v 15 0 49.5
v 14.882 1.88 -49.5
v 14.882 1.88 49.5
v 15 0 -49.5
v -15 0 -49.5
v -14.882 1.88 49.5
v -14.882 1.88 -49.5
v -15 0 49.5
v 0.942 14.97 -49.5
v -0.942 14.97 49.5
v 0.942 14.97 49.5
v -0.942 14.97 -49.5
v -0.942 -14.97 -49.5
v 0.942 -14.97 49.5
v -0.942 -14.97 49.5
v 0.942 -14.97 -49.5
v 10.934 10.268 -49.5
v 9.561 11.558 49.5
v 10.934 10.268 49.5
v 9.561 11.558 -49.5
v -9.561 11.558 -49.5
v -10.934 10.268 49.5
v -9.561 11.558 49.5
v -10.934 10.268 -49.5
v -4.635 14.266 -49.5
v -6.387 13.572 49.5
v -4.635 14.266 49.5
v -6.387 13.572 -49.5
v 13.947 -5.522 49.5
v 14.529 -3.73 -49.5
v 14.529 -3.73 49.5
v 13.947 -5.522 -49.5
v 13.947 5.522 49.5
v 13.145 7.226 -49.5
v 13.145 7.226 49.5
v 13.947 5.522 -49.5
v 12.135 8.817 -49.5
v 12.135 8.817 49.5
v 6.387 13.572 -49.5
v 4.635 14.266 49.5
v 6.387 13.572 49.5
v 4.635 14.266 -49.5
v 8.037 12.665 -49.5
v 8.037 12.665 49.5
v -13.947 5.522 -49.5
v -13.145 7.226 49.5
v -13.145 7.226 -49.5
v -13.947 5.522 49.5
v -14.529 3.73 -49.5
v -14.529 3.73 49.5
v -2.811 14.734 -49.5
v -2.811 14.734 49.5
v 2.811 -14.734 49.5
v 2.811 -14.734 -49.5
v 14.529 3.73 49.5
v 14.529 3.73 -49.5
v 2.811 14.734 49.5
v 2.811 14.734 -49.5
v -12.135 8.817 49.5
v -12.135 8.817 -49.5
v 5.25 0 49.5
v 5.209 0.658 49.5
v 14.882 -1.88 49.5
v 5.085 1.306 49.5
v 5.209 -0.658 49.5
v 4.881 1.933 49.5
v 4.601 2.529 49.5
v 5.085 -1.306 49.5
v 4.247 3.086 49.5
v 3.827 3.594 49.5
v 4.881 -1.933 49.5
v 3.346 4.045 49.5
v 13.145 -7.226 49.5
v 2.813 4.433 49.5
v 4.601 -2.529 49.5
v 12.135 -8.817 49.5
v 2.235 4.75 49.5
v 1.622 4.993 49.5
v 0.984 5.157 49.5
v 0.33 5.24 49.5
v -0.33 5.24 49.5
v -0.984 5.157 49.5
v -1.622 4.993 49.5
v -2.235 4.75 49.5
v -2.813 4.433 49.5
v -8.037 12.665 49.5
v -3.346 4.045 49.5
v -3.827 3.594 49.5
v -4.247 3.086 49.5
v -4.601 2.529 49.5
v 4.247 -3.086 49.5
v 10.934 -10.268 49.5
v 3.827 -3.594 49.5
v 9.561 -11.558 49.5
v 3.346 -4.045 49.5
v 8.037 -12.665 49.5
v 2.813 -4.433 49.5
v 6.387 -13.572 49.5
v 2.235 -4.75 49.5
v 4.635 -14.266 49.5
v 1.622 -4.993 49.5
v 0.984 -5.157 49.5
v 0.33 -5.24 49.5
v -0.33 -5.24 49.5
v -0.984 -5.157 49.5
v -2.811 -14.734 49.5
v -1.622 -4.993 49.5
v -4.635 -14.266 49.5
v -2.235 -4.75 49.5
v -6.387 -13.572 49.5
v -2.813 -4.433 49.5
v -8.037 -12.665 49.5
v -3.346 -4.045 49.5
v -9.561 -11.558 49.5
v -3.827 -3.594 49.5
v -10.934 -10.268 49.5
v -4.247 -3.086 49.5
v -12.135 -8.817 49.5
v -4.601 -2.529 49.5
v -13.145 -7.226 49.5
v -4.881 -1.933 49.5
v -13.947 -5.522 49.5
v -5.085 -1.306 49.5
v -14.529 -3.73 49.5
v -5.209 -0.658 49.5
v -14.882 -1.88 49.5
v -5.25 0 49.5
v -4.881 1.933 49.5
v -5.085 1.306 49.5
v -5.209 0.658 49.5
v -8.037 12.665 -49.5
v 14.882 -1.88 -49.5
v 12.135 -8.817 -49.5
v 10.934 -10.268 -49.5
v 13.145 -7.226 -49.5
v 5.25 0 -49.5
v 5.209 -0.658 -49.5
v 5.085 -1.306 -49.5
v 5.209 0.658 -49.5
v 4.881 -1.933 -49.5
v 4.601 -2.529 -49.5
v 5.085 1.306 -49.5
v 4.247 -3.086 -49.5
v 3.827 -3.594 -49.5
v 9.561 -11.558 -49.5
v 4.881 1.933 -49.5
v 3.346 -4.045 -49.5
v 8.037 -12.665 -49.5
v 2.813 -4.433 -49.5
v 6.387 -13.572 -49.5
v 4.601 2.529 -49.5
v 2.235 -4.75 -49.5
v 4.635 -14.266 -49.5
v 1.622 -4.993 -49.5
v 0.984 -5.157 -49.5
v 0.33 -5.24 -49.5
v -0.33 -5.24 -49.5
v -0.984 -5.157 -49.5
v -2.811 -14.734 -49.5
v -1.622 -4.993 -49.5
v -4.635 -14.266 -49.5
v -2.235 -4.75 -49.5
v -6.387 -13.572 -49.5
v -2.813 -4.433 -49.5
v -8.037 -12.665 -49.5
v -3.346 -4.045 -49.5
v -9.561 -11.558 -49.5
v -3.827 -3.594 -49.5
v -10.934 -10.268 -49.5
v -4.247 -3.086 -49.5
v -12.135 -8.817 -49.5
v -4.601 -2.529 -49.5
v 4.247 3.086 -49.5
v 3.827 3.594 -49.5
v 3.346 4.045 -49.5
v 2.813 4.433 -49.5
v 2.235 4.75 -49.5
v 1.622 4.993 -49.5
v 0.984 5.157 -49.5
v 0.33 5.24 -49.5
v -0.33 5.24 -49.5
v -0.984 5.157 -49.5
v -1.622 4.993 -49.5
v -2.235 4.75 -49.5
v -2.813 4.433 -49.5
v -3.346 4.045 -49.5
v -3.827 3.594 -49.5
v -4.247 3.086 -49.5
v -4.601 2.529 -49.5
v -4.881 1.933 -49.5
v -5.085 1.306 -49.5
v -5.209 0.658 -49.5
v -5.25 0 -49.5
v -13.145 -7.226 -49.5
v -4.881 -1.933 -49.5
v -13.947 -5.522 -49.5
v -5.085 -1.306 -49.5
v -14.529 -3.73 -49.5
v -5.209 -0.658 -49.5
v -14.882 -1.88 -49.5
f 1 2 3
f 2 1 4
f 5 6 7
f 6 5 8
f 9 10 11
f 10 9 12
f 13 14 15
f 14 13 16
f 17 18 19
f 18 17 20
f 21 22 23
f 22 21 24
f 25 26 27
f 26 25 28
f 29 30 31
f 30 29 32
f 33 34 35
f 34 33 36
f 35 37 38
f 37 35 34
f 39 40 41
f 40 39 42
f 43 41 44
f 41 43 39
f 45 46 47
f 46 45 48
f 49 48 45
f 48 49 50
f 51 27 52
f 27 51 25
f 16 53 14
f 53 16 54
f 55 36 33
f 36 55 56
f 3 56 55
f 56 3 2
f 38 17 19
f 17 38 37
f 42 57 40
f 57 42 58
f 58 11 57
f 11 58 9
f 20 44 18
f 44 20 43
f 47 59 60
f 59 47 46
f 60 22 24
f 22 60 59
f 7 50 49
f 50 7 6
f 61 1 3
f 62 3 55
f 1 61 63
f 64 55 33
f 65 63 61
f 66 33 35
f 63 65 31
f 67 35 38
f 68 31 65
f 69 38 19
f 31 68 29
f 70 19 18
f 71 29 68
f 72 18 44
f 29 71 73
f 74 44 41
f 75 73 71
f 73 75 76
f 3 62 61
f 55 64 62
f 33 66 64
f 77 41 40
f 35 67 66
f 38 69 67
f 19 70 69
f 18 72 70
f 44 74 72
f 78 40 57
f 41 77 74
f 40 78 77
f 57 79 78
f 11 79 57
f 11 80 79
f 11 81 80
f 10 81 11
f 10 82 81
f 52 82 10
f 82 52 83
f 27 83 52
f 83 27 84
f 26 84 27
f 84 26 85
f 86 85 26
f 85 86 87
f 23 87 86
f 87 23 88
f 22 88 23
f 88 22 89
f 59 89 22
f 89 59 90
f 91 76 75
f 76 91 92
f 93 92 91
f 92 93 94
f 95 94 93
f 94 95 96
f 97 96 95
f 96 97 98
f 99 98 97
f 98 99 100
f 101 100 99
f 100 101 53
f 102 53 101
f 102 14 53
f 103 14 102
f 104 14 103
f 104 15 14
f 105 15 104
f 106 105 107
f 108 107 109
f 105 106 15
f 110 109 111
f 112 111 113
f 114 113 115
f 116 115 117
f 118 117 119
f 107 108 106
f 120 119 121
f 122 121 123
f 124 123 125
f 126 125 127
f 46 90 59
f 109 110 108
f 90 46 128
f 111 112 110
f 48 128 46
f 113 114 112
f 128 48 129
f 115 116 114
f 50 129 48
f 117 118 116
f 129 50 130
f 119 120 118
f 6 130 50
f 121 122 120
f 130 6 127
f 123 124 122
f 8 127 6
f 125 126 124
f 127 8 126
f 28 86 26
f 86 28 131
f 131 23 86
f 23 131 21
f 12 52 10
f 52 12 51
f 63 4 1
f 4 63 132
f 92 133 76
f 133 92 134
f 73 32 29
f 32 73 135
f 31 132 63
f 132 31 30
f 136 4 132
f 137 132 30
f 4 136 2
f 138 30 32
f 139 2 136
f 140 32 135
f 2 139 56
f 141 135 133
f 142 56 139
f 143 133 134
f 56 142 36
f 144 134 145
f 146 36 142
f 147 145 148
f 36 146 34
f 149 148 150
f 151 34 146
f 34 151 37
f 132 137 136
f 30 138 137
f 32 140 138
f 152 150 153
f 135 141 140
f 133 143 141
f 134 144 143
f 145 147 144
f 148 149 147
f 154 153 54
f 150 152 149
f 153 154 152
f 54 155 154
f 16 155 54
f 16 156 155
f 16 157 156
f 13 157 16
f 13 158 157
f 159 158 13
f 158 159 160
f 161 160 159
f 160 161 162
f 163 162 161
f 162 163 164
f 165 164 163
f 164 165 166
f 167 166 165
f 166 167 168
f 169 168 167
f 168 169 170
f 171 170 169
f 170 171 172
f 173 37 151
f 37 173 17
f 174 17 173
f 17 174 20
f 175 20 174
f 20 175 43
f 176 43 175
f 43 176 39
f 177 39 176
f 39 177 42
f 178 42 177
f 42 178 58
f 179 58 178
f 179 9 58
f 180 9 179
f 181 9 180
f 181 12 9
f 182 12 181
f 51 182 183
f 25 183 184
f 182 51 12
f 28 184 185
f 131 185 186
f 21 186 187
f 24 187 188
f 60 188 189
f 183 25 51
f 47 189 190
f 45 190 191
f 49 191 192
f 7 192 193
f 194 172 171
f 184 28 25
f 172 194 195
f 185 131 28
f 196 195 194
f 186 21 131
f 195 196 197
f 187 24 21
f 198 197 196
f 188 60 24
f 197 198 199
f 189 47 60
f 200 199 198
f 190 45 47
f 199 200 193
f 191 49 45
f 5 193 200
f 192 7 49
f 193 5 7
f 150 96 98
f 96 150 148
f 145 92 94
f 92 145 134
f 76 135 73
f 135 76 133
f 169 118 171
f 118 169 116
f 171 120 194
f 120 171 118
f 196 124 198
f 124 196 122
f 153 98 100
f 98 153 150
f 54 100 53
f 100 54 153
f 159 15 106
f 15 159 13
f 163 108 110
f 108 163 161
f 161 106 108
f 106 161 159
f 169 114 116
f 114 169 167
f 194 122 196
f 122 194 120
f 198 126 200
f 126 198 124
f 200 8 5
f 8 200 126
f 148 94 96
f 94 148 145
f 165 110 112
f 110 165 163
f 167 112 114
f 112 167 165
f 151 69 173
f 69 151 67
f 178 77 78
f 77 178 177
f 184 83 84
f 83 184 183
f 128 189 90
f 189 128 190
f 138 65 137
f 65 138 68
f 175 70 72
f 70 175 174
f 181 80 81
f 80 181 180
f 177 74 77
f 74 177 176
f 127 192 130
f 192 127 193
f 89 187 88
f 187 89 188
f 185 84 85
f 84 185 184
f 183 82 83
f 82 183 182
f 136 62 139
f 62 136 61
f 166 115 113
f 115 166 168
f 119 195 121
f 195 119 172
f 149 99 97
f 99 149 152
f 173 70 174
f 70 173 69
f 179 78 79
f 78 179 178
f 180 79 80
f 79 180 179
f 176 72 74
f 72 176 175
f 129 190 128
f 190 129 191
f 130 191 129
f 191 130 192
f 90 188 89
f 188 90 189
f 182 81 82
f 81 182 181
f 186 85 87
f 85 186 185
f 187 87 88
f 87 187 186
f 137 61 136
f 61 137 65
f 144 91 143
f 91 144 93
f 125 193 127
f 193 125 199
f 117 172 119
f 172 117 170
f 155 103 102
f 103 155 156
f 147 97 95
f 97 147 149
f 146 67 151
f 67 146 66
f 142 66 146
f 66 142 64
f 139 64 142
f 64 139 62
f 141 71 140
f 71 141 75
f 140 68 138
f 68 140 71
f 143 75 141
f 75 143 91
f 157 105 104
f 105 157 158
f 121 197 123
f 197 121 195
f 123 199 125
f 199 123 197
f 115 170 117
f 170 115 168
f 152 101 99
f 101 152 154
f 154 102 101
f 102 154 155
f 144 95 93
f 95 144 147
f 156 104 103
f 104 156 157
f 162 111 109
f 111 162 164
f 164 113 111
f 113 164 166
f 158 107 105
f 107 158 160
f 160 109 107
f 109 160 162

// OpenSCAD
$fn = 50;


difference() {
	union() {
		translate(v = [0, 0, -49.5000000000]) {
			cylinder(h = 99, r = 15.0000000000);
		}
	}
	union() {
		translate(v = [0, 0, -100.0000000000]) {
			cylinder(h = 200, r = 5.2500000000);
		}
	}
}
